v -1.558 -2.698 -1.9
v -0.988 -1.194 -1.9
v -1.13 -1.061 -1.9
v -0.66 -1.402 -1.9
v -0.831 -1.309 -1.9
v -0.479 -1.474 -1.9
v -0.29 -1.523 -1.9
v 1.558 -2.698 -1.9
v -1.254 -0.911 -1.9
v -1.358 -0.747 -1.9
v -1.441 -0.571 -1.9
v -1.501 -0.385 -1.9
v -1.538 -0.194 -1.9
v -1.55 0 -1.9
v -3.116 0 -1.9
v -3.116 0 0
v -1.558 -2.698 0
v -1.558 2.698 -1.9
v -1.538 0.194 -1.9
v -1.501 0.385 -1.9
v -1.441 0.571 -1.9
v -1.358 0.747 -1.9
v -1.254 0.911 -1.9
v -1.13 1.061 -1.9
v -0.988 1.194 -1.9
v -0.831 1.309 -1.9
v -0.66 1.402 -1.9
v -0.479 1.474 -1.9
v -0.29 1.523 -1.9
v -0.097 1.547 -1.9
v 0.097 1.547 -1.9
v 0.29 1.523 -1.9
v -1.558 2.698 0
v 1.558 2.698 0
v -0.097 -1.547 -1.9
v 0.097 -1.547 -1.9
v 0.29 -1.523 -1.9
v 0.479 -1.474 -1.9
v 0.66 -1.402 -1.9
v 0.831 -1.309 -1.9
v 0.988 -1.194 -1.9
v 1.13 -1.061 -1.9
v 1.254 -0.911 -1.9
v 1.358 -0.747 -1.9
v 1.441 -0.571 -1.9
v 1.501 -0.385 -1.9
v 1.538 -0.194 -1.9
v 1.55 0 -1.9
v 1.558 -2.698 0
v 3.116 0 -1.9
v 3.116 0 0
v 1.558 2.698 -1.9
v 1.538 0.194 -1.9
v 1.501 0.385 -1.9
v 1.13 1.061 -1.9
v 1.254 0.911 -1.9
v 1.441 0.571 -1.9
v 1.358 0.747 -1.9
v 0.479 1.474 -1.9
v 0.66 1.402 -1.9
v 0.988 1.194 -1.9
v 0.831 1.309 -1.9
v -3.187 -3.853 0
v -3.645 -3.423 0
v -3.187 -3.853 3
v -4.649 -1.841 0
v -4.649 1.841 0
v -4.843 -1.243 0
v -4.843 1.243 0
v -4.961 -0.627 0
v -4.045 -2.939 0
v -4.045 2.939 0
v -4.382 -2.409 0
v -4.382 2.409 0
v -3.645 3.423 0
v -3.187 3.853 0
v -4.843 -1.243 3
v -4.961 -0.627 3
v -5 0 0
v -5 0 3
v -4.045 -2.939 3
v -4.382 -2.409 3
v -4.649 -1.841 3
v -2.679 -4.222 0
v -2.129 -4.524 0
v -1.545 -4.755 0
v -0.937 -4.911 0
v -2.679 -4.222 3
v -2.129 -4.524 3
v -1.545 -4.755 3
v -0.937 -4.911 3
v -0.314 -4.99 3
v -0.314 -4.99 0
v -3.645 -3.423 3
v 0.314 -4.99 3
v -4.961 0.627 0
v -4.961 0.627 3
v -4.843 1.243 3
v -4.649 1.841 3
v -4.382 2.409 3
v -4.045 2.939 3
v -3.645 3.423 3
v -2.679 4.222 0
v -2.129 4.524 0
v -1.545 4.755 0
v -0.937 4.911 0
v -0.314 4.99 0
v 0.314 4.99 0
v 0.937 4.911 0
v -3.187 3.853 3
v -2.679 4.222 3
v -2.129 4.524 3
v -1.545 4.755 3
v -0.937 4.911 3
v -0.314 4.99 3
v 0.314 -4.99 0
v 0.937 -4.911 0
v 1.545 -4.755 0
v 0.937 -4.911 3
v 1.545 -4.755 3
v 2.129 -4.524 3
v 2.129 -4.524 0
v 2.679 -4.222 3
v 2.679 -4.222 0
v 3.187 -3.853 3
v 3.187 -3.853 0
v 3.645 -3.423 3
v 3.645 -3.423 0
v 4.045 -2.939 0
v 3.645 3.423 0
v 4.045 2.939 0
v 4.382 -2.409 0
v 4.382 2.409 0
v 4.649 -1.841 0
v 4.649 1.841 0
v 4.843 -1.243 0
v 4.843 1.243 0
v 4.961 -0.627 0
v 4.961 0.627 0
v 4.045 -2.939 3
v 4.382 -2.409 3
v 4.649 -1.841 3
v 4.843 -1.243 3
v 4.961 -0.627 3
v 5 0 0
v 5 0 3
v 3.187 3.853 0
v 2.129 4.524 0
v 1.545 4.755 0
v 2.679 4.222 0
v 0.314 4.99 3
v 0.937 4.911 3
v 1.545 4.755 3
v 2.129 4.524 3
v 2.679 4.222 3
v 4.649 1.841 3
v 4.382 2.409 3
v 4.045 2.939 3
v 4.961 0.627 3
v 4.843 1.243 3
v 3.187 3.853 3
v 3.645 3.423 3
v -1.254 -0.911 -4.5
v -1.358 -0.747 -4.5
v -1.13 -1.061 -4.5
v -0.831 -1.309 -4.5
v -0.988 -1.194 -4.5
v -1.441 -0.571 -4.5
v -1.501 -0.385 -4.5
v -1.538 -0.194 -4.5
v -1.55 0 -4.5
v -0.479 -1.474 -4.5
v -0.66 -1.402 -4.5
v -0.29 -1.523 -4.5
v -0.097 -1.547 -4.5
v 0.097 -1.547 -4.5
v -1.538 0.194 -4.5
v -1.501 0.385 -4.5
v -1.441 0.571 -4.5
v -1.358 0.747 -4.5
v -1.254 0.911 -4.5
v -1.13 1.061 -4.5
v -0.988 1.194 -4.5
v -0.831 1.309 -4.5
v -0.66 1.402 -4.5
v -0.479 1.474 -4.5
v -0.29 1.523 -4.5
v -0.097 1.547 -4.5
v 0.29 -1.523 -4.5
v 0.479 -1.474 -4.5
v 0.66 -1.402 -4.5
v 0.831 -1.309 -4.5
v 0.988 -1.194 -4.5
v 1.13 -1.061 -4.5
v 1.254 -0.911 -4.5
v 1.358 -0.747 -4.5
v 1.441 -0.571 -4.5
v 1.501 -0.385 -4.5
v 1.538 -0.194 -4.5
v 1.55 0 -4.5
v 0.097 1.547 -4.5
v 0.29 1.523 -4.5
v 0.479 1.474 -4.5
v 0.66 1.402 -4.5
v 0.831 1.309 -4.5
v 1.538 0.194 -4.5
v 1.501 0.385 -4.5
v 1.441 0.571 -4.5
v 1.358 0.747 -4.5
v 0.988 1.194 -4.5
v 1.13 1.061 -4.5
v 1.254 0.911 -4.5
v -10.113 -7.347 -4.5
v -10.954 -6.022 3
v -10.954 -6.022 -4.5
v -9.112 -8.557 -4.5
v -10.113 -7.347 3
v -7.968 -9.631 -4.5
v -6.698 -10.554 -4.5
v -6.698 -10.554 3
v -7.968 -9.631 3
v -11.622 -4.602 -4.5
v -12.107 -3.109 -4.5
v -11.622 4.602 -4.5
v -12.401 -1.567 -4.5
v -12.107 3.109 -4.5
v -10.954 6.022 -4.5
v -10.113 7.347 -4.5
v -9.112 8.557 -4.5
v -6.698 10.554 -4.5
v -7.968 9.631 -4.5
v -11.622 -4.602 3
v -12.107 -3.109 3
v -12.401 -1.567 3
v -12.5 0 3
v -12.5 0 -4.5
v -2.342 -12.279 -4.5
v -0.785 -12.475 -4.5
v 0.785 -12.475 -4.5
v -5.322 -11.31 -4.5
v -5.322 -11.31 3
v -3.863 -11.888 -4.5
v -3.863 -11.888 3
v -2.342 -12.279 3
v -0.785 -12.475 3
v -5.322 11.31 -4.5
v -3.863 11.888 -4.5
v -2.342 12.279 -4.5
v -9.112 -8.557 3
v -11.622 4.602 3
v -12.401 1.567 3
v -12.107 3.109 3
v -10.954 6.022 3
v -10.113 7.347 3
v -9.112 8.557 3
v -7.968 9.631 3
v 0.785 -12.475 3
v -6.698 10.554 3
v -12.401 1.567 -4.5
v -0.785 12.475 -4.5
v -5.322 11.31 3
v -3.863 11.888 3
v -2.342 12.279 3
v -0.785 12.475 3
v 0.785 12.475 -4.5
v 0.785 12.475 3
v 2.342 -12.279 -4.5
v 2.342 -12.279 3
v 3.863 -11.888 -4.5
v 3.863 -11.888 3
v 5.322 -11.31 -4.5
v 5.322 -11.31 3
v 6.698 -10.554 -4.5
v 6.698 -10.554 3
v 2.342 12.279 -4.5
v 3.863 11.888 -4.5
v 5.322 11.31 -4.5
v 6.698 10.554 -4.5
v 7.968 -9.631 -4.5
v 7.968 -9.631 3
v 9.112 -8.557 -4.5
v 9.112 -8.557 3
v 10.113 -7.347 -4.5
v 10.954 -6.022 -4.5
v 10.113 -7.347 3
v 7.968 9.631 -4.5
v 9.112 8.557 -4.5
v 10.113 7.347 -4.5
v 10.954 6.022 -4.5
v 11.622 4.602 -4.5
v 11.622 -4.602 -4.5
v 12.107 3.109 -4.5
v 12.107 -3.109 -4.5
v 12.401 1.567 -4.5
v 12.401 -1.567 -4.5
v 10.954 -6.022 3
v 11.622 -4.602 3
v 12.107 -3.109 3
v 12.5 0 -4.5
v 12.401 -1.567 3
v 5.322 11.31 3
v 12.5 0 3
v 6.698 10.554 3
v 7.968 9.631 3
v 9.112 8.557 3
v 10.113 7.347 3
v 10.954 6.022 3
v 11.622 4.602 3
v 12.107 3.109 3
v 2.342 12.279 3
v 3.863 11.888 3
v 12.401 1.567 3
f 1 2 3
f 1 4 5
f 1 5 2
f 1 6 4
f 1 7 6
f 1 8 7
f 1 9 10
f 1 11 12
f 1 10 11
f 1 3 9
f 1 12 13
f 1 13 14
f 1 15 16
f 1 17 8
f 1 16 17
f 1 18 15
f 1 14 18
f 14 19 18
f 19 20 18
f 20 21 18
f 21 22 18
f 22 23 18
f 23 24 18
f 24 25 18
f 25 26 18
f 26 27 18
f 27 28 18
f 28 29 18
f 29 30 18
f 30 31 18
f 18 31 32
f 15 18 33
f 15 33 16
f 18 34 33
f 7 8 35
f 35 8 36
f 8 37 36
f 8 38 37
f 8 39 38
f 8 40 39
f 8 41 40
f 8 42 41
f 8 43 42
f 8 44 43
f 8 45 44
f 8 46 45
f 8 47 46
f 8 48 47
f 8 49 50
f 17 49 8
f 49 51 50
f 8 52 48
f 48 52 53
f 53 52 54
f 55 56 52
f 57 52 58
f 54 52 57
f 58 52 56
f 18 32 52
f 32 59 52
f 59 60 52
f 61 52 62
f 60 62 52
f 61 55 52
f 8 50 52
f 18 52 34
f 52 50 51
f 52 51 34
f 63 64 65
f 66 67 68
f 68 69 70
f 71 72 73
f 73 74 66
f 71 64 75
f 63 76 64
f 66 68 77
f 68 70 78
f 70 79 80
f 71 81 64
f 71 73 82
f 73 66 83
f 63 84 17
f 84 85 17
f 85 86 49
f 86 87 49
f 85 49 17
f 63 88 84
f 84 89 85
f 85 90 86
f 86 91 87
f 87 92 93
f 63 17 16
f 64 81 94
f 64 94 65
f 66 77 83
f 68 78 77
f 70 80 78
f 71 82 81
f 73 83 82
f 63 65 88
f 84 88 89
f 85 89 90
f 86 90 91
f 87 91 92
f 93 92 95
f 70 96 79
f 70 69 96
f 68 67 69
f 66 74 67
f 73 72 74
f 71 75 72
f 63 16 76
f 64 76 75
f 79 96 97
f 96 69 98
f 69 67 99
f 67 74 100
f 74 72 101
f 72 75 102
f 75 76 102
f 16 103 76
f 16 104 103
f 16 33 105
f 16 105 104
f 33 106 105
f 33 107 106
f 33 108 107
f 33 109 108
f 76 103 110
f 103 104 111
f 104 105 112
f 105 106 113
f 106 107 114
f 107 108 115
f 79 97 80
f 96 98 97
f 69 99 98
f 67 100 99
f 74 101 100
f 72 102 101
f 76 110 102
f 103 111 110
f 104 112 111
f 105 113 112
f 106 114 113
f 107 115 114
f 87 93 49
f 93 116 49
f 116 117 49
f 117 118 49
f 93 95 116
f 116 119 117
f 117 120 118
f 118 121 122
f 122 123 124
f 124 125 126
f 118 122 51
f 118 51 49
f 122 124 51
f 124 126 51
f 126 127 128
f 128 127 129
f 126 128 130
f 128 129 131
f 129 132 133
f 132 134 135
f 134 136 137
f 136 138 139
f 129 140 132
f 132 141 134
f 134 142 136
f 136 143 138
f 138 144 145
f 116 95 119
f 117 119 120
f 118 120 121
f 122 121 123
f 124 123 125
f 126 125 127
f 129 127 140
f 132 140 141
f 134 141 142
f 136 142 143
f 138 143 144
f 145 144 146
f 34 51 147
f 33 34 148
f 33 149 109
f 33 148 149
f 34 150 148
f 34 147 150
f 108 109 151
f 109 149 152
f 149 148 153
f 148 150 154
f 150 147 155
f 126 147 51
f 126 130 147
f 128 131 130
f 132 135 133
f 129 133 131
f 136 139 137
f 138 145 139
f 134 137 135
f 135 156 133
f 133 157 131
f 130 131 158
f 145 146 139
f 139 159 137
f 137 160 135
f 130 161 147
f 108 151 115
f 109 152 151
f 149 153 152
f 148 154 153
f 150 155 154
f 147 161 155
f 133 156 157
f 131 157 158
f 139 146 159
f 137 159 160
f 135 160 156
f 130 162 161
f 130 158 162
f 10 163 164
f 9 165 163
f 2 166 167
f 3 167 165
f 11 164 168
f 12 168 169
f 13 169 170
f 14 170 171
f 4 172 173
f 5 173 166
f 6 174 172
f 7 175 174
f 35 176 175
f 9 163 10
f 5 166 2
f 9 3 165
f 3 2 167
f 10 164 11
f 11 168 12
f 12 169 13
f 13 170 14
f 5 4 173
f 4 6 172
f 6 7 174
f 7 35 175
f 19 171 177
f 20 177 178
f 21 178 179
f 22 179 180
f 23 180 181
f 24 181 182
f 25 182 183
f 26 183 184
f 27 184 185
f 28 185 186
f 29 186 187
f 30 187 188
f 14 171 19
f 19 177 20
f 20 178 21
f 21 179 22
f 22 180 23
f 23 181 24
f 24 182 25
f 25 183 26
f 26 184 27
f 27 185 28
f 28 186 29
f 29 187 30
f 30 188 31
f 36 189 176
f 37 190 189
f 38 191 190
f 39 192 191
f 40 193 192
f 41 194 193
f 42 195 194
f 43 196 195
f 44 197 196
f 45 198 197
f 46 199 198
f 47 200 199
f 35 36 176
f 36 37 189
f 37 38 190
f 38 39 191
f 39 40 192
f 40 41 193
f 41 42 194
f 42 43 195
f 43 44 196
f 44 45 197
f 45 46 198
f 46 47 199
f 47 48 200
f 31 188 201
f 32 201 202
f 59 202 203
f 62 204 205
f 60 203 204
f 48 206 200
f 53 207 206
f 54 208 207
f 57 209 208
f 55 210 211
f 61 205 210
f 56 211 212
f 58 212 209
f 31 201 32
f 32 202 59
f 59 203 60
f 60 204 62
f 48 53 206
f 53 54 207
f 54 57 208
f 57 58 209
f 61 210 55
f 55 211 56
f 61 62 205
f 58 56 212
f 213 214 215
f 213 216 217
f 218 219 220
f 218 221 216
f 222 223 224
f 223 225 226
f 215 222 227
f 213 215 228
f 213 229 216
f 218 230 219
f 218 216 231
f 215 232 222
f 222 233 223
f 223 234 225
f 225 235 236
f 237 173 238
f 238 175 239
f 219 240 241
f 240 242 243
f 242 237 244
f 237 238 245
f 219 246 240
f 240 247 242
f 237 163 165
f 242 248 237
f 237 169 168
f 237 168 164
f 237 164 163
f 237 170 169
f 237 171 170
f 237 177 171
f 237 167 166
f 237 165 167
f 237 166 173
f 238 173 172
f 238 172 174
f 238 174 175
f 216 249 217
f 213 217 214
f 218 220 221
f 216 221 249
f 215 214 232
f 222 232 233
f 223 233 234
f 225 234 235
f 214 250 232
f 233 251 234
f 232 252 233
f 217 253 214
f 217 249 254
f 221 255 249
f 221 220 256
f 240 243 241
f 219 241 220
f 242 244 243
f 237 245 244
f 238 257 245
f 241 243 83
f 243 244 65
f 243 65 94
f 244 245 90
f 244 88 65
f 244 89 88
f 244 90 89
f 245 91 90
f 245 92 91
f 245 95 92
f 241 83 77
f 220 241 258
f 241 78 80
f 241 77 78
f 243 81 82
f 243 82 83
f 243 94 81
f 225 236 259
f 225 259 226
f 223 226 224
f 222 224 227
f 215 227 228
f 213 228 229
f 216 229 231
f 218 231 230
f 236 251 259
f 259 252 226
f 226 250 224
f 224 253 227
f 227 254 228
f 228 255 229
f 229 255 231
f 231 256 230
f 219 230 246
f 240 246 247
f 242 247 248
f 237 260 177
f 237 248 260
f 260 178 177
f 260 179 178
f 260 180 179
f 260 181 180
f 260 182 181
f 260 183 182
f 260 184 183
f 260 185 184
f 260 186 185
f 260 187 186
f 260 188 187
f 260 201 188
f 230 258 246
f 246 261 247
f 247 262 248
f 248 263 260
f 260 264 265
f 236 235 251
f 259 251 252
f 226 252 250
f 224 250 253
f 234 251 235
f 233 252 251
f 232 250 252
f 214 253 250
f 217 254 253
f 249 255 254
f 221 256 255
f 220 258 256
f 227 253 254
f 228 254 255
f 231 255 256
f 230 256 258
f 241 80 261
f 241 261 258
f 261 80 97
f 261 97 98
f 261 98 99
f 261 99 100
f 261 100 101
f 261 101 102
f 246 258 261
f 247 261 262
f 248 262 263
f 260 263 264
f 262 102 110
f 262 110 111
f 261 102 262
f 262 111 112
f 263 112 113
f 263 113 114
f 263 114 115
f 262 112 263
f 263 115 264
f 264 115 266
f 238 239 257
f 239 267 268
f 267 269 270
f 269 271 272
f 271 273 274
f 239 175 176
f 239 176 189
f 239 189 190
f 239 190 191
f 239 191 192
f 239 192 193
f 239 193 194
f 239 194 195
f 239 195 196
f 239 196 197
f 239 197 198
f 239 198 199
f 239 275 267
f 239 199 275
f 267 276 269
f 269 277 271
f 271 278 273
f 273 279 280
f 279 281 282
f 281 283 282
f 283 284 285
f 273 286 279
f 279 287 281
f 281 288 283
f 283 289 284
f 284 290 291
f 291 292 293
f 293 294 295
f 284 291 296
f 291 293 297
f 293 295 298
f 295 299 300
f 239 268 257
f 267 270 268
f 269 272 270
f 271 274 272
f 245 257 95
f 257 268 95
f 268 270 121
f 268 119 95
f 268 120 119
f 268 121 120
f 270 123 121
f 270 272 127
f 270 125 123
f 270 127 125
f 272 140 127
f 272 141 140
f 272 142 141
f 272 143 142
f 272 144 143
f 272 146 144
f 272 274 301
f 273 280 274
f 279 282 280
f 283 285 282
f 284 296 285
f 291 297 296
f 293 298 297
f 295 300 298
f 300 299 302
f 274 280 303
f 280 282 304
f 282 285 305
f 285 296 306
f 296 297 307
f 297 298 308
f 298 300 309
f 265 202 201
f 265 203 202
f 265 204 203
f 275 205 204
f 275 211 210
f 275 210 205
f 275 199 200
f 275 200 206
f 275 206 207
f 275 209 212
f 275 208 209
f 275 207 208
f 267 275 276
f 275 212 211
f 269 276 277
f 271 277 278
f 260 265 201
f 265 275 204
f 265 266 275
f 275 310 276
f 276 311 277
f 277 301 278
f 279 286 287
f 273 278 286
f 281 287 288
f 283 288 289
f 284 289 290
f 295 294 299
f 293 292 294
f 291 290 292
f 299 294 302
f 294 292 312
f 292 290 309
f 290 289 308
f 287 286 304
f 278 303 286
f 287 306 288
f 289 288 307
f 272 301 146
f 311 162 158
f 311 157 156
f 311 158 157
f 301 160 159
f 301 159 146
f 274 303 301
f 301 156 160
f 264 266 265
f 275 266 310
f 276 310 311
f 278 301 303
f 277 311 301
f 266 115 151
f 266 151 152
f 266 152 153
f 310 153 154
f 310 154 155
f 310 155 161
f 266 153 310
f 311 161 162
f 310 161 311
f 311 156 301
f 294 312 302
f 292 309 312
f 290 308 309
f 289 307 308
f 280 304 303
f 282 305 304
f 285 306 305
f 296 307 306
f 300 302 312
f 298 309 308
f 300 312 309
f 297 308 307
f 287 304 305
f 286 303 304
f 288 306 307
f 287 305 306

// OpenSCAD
$fn = 50;

difference() {
	union() {
		translate(v = [0, 0, -4.5]) {
			cylinder(h = 7.5, r = 12.5);
		}
	}
	union() {
		translate(v = [0, 0, 0]) {
			rotate(a = [0, 0, 0]) {
				difference() {
					union() {
						translate(v = [0, 0, -1.9]) {
							linear_extrude(height = 1.9) {
								polygon(points = [[3.1158, 0.0], [1.5579000000000005, 2.698361953111554], [-1.5578999999999994, 2.6983619531115544], [-3.1158, 3.815754496783323e-16], [-1.5579000000000014, -2.6983619531115535], [1.557899999999998, -2.6983619531115552]]);
							}
						}
					}
					union();
				}
			}
		}
		#cylinder(h = 3, r = 5.0);
		#translate(v = [0, 0, -100.0]) {
			cylinder(h = 200, r = 1.55);
		}
	}
}
